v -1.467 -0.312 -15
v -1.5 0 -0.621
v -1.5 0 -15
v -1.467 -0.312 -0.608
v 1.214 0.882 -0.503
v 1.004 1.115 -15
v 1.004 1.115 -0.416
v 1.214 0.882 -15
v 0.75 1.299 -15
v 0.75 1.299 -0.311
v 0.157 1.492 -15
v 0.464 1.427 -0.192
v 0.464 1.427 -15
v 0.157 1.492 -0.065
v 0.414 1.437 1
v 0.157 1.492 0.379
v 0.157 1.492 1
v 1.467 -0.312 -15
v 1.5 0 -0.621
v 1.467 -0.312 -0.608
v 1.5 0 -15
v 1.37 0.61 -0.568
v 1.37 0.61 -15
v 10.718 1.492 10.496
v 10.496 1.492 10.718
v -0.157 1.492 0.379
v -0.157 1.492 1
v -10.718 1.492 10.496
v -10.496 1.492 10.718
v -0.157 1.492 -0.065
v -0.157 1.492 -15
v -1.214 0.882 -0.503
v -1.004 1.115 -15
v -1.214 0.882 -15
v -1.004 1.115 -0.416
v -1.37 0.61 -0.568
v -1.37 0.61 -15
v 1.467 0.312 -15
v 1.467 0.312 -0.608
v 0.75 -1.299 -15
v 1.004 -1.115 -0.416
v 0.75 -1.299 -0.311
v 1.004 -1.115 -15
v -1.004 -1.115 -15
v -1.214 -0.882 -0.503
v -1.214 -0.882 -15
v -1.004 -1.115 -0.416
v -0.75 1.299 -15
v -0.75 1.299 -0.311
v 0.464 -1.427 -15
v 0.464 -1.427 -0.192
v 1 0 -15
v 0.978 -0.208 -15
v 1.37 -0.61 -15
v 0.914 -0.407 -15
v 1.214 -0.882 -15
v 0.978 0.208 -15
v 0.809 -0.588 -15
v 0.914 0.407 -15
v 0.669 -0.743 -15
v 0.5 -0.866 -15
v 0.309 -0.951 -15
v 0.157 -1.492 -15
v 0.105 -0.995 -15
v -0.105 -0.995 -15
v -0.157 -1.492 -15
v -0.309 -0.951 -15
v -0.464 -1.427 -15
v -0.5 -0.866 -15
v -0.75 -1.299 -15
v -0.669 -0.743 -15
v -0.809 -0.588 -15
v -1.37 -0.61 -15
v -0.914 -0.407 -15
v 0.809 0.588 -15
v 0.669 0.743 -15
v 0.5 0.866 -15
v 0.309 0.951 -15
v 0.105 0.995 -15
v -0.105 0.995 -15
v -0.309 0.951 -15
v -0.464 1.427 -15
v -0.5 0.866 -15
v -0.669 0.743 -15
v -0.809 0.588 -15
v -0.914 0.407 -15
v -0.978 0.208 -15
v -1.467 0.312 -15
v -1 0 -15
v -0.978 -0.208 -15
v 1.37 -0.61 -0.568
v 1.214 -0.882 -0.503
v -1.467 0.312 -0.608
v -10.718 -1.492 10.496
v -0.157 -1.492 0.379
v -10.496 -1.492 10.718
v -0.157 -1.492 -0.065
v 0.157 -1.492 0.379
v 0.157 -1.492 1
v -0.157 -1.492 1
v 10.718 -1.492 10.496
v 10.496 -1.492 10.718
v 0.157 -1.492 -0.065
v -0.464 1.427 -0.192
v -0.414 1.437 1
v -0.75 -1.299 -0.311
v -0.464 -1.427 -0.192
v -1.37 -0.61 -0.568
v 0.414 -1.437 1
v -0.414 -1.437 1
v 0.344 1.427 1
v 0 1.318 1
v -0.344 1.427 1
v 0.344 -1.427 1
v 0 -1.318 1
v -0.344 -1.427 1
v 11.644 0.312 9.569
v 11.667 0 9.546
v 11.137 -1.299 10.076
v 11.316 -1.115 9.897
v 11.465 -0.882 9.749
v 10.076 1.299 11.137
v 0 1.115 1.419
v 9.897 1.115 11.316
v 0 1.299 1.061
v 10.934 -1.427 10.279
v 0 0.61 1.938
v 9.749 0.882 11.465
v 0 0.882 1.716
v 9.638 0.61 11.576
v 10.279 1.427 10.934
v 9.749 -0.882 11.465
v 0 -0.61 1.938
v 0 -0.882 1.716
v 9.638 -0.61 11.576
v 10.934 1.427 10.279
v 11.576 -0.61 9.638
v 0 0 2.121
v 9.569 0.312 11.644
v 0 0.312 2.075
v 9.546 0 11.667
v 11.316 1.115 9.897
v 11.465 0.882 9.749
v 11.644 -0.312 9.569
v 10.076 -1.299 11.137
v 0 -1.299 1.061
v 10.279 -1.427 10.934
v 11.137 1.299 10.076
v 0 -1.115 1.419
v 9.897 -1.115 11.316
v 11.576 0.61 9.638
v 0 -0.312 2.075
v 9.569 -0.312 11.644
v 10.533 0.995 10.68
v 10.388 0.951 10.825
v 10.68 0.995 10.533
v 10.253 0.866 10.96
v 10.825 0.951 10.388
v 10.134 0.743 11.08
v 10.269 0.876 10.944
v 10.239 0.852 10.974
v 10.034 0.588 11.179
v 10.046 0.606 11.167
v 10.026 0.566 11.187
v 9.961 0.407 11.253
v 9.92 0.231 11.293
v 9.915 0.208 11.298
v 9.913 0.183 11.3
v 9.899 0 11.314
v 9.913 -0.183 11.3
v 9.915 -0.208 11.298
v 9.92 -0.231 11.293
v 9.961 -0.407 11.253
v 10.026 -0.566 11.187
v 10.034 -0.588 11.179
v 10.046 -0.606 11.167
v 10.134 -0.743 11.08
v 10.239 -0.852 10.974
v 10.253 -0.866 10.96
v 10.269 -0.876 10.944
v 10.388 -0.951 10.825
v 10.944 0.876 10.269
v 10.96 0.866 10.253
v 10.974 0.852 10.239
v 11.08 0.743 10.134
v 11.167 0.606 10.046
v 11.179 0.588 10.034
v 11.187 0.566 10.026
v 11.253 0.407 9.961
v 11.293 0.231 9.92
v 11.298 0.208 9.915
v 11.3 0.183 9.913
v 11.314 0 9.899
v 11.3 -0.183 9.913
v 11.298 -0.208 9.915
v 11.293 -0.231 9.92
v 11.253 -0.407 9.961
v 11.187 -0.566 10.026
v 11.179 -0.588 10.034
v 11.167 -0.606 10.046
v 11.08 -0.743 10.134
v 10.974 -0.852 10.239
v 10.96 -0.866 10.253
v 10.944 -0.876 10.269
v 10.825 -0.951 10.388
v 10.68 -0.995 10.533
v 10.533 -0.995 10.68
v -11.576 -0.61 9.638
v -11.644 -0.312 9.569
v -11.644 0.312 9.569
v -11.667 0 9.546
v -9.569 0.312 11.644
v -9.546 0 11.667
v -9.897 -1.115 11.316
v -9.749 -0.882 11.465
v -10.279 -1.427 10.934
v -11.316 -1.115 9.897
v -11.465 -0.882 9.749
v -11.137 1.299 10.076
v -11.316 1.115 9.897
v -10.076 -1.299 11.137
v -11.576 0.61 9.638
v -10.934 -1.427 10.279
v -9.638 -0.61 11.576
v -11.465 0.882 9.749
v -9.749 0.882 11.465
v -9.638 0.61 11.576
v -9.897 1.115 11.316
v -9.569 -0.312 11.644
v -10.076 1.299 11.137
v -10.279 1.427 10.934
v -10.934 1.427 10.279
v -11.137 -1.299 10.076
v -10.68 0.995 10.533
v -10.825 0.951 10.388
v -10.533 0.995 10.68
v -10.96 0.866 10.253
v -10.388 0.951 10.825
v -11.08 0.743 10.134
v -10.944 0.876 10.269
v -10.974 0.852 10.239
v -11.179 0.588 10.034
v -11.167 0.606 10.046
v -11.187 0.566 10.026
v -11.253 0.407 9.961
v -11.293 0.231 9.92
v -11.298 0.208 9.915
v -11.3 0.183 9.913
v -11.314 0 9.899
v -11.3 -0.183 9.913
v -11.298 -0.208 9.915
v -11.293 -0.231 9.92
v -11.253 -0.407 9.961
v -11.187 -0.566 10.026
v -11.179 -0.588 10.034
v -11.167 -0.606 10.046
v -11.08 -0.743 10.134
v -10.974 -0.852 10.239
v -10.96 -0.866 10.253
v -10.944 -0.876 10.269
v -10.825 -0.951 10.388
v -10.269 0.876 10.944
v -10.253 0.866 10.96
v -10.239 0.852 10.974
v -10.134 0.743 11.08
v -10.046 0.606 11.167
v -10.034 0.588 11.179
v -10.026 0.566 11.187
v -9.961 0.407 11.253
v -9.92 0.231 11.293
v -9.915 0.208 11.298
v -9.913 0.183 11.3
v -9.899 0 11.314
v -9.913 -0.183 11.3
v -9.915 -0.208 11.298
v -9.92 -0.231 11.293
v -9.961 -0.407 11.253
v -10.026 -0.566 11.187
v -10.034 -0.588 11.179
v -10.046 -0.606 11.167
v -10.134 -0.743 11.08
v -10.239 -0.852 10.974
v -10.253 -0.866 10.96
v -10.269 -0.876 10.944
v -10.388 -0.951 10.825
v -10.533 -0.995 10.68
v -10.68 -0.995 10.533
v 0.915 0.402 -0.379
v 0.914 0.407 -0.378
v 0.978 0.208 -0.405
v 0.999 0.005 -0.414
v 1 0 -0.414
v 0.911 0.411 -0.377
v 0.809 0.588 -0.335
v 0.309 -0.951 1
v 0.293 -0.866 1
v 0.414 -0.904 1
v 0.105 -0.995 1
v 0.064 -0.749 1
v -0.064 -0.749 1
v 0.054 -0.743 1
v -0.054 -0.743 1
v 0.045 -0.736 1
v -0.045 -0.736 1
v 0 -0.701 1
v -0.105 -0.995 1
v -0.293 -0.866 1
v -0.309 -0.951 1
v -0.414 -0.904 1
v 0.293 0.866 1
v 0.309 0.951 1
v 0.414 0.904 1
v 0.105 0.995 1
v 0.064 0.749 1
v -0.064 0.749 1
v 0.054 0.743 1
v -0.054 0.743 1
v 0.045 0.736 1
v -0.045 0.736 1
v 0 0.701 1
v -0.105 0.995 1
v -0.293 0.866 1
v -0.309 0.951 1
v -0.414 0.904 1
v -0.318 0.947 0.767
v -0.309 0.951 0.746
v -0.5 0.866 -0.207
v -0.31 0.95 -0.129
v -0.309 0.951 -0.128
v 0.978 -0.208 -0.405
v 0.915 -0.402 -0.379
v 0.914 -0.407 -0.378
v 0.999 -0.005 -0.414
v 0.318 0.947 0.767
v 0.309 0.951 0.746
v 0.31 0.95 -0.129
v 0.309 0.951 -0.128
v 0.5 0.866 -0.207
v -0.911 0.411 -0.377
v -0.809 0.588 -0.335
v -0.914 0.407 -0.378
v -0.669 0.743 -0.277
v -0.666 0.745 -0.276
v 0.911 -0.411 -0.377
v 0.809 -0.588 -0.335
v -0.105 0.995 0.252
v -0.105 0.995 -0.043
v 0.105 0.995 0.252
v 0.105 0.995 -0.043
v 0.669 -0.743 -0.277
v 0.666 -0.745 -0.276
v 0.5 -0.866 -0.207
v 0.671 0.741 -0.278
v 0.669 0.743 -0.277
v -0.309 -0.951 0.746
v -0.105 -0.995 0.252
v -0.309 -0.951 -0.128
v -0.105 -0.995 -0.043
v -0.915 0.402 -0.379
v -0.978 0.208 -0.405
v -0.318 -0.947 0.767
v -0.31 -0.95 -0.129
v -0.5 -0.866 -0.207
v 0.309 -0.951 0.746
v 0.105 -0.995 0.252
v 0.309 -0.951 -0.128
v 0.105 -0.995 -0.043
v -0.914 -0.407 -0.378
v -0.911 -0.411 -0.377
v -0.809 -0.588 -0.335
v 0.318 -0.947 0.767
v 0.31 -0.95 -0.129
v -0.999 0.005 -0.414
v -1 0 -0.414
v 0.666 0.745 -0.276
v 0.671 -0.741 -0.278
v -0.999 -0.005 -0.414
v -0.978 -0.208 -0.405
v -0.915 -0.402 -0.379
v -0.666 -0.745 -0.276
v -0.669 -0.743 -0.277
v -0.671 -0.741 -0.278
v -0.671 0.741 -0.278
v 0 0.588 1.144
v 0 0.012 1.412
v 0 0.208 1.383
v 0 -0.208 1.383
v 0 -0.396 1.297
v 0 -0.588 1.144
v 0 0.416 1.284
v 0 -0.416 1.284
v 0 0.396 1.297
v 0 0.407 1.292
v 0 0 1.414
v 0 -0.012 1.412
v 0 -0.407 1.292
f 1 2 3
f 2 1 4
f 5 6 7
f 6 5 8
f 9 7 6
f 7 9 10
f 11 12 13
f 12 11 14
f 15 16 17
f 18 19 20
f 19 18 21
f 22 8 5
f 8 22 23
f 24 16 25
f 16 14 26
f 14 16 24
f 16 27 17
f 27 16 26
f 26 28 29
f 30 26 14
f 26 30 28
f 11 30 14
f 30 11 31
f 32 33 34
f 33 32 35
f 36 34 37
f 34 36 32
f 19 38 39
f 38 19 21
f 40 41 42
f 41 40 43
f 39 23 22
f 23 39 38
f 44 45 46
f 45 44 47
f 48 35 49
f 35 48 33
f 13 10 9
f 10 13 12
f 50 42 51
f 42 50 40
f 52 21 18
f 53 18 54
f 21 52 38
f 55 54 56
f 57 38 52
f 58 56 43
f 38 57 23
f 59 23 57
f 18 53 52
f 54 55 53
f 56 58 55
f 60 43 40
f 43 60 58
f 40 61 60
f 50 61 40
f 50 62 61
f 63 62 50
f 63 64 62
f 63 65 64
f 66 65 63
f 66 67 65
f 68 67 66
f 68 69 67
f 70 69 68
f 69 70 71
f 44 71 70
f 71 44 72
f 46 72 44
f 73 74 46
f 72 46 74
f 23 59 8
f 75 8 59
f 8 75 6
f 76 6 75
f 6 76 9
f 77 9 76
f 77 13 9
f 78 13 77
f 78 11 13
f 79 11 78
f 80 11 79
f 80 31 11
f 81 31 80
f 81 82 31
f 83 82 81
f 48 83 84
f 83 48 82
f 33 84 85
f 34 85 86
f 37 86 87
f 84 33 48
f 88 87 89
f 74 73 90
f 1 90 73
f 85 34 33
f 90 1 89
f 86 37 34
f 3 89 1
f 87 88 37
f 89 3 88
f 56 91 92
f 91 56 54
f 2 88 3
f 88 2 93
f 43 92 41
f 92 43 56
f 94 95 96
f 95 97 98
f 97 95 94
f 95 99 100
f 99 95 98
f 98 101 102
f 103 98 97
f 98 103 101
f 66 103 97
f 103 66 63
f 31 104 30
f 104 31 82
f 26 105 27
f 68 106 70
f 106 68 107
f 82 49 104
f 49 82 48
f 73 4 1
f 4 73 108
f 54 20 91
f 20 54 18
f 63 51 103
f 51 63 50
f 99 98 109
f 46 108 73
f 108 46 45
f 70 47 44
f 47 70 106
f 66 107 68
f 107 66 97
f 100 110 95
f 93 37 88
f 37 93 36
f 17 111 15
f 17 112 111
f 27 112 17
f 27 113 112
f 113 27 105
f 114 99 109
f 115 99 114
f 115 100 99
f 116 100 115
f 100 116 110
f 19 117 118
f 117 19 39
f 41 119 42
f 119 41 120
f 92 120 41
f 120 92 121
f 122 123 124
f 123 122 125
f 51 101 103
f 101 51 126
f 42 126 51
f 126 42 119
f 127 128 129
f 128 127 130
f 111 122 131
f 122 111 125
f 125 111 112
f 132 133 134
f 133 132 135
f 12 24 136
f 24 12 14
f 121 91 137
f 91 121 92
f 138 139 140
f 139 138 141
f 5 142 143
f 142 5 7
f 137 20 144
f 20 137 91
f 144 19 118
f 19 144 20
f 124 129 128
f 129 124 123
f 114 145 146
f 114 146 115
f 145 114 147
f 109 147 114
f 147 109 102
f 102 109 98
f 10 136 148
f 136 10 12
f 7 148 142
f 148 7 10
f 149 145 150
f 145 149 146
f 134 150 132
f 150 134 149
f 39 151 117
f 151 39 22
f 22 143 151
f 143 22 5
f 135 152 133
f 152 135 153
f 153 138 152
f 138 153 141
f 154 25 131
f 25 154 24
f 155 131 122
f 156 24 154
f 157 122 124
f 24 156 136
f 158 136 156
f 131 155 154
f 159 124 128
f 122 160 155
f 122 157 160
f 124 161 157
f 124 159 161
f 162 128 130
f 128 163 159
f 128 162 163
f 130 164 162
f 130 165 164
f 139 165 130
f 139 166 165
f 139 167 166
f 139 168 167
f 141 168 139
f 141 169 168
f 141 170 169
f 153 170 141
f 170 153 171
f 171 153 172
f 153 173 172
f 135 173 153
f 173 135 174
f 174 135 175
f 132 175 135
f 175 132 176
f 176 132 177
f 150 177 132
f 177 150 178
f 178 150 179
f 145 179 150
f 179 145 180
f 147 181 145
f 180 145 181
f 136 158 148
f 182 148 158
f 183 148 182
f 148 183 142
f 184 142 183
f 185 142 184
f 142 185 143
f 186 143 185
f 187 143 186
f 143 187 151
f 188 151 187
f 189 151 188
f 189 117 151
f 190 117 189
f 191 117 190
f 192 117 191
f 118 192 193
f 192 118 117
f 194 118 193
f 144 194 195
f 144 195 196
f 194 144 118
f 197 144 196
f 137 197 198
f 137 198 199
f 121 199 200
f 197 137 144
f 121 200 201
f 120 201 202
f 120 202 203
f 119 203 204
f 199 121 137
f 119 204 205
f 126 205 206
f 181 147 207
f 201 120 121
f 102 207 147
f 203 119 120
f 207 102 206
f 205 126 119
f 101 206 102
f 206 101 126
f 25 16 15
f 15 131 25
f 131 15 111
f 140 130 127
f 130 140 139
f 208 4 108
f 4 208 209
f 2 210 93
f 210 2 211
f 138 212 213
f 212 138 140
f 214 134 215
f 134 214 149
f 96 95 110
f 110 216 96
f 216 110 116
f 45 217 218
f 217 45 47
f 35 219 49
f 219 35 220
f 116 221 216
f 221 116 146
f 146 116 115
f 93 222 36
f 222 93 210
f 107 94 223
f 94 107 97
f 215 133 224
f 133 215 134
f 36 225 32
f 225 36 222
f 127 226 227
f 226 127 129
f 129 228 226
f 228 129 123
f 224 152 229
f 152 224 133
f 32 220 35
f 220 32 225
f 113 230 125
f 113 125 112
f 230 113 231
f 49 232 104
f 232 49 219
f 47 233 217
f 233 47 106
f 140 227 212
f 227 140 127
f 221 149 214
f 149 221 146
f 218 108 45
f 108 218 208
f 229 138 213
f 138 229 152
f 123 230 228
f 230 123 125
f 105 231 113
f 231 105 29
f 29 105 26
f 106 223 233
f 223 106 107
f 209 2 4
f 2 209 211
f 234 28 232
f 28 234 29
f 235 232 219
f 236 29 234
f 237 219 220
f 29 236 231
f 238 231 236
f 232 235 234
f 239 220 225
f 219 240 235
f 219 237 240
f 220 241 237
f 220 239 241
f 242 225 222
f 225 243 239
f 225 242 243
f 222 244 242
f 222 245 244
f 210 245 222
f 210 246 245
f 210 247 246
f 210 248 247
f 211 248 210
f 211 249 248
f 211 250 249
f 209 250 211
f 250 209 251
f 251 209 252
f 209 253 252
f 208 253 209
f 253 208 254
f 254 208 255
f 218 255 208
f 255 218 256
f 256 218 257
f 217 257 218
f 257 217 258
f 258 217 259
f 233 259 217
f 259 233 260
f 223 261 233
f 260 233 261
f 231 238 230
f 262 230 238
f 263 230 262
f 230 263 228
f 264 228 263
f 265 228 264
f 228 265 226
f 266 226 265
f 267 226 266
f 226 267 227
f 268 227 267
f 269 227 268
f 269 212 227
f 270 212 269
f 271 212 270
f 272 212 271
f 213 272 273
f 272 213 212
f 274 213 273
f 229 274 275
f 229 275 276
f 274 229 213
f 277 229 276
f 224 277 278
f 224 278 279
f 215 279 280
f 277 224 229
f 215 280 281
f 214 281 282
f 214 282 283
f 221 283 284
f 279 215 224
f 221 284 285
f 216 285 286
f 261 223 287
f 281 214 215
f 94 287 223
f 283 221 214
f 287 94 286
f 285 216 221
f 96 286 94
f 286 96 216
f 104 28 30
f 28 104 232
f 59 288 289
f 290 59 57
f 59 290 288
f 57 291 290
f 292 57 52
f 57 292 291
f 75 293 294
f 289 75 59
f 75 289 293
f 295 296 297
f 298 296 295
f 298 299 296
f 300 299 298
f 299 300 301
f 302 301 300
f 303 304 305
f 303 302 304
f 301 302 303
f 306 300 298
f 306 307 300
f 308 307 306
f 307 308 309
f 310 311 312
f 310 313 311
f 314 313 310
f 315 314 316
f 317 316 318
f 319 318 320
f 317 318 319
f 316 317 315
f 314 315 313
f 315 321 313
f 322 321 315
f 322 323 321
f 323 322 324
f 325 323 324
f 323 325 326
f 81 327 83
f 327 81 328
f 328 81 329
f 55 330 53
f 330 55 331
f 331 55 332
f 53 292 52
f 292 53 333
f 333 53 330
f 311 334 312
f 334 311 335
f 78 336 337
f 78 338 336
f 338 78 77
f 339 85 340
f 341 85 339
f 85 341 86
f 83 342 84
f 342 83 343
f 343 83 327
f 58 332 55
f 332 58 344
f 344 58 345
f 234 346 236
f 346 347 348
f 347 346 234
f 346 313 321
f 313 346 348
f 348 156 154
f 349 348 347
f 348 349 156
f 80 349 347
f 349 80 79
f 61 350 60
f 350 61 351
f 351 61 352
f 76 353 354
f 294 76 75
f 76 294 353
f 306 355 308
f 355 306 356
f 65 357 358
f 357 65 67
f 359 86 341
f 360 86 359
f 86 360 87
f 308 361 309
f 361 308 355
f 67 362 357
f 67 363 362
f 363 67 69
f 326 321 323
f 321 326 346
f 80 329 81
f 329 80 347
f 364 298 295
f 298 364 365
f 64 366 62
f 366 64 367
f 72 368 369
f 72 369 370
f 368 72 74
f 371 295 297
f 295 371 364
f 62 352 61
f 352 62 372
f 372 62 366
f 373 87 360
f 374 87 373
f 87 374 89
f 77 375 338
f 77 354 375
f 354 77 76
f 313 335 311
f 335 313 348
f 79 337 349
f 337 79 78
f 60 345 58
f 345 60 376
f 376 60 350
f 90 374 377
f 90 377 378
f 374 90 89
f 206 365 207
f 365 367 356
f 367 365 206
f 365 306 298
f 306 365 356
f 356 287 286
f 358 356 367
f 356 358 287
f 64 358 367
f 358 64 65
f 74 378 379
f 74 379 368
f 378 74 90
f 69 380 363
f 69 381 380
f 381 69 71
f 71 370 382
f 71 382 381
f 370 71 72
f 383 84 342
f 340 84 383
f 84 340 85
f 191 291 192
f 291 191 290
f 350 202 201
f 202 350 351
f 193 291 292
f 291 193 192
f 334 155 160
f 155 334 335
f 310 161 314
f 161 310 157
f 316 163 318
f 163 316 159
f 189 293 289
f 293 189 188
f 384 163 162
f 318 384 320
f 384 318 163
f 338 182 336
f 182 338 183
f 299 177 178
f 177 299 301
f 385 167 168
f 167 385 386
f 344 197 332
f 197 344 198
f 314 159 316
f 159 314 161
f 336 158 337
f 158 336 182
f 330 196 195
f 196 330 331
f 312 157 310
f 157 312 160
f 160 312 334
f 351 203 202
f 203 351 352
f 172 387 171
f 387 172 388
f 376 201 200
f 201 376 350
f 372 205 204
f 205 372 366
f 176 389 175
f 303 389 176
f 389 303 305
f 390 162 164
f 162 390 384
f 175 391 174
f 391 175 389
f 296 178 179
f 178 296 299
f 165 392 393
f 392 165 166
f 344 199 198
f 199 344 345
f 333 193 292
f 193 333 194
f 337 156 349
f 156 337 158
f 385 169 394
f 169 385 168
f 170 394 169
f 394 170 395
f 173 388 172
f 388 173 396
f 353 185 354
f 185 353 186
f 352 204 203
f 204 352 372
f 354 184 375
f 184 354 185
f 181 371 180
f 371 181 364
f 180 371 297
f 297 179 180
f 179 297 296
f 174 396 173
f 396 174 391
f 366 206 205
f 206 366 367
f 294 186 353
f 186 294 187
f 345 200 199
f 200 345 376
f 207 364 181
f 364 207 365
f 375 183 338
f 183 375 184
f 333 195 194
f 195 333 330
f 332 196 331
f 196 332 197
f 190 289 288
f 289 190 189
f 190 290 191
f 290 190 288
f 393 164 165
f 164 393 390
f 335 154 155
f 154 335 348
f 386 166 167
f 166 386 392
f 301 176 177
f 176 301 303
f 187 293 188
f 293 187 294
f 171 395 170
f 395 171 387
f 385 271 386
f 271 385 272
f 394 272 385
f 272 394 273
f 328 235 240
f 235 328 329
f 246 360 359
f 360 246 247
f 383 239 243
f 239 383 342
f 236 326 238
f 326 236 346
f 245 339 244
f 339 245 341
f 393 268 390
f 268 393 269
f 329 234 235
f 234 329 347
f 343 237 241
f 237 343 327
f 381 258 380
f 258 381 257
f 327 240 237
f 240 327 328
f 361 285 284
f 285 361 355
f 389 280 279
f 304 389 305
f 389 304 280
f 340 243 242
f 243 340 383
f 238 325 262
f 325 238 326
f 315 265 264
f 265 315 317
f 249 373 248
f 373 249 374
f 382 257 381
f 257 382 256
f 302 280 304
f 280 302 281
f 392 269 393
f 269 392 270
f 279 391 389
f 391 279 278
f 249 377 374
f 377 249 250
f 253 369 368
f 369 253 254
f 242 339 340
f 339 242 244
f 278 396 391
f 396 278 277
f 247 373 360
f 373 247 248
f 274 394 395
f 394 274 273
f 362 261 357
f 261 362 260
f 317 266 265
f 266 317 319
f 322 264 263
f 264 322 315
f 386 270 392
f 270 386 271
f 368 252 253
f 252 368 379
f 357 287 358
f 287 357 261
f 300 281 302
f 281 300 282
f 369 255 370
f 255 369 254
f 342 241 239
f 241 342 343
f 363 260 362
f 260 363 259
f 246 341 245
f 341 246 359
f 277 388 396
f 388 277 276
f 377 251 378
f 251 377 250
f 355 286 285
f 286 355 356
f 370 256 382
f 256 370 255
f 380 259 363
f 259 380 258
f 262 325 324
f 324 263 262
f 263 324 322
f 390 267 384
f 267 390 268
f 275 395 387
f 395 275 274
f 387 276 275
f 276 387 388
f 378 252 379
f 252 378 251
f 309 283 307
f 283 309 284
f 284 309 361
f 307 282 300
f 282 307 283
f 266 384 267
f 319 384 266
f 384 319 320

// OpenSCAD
tubeInnerDia = 2;
tubeLen = 15;

$fn=30;

module y(innerDia=tubeInnerDia,length=tubeLen){
    translate([0,0,-length]){
        cylinder(d=innerDia,h=length+1);
    }//end translate
    rotate([0,45,0]){
        cylinder(d=innerDia,h=length);
    }//end rotate

    rotate([0,-45,0]){
    cylinder(d=innerDia,h=length);
    }//end rotate
    
}//end module




difference(){
y(innerDia=tubeInnerDia+1,length=tubeLen);
y(length=tubeLen+2);


}//end differece
